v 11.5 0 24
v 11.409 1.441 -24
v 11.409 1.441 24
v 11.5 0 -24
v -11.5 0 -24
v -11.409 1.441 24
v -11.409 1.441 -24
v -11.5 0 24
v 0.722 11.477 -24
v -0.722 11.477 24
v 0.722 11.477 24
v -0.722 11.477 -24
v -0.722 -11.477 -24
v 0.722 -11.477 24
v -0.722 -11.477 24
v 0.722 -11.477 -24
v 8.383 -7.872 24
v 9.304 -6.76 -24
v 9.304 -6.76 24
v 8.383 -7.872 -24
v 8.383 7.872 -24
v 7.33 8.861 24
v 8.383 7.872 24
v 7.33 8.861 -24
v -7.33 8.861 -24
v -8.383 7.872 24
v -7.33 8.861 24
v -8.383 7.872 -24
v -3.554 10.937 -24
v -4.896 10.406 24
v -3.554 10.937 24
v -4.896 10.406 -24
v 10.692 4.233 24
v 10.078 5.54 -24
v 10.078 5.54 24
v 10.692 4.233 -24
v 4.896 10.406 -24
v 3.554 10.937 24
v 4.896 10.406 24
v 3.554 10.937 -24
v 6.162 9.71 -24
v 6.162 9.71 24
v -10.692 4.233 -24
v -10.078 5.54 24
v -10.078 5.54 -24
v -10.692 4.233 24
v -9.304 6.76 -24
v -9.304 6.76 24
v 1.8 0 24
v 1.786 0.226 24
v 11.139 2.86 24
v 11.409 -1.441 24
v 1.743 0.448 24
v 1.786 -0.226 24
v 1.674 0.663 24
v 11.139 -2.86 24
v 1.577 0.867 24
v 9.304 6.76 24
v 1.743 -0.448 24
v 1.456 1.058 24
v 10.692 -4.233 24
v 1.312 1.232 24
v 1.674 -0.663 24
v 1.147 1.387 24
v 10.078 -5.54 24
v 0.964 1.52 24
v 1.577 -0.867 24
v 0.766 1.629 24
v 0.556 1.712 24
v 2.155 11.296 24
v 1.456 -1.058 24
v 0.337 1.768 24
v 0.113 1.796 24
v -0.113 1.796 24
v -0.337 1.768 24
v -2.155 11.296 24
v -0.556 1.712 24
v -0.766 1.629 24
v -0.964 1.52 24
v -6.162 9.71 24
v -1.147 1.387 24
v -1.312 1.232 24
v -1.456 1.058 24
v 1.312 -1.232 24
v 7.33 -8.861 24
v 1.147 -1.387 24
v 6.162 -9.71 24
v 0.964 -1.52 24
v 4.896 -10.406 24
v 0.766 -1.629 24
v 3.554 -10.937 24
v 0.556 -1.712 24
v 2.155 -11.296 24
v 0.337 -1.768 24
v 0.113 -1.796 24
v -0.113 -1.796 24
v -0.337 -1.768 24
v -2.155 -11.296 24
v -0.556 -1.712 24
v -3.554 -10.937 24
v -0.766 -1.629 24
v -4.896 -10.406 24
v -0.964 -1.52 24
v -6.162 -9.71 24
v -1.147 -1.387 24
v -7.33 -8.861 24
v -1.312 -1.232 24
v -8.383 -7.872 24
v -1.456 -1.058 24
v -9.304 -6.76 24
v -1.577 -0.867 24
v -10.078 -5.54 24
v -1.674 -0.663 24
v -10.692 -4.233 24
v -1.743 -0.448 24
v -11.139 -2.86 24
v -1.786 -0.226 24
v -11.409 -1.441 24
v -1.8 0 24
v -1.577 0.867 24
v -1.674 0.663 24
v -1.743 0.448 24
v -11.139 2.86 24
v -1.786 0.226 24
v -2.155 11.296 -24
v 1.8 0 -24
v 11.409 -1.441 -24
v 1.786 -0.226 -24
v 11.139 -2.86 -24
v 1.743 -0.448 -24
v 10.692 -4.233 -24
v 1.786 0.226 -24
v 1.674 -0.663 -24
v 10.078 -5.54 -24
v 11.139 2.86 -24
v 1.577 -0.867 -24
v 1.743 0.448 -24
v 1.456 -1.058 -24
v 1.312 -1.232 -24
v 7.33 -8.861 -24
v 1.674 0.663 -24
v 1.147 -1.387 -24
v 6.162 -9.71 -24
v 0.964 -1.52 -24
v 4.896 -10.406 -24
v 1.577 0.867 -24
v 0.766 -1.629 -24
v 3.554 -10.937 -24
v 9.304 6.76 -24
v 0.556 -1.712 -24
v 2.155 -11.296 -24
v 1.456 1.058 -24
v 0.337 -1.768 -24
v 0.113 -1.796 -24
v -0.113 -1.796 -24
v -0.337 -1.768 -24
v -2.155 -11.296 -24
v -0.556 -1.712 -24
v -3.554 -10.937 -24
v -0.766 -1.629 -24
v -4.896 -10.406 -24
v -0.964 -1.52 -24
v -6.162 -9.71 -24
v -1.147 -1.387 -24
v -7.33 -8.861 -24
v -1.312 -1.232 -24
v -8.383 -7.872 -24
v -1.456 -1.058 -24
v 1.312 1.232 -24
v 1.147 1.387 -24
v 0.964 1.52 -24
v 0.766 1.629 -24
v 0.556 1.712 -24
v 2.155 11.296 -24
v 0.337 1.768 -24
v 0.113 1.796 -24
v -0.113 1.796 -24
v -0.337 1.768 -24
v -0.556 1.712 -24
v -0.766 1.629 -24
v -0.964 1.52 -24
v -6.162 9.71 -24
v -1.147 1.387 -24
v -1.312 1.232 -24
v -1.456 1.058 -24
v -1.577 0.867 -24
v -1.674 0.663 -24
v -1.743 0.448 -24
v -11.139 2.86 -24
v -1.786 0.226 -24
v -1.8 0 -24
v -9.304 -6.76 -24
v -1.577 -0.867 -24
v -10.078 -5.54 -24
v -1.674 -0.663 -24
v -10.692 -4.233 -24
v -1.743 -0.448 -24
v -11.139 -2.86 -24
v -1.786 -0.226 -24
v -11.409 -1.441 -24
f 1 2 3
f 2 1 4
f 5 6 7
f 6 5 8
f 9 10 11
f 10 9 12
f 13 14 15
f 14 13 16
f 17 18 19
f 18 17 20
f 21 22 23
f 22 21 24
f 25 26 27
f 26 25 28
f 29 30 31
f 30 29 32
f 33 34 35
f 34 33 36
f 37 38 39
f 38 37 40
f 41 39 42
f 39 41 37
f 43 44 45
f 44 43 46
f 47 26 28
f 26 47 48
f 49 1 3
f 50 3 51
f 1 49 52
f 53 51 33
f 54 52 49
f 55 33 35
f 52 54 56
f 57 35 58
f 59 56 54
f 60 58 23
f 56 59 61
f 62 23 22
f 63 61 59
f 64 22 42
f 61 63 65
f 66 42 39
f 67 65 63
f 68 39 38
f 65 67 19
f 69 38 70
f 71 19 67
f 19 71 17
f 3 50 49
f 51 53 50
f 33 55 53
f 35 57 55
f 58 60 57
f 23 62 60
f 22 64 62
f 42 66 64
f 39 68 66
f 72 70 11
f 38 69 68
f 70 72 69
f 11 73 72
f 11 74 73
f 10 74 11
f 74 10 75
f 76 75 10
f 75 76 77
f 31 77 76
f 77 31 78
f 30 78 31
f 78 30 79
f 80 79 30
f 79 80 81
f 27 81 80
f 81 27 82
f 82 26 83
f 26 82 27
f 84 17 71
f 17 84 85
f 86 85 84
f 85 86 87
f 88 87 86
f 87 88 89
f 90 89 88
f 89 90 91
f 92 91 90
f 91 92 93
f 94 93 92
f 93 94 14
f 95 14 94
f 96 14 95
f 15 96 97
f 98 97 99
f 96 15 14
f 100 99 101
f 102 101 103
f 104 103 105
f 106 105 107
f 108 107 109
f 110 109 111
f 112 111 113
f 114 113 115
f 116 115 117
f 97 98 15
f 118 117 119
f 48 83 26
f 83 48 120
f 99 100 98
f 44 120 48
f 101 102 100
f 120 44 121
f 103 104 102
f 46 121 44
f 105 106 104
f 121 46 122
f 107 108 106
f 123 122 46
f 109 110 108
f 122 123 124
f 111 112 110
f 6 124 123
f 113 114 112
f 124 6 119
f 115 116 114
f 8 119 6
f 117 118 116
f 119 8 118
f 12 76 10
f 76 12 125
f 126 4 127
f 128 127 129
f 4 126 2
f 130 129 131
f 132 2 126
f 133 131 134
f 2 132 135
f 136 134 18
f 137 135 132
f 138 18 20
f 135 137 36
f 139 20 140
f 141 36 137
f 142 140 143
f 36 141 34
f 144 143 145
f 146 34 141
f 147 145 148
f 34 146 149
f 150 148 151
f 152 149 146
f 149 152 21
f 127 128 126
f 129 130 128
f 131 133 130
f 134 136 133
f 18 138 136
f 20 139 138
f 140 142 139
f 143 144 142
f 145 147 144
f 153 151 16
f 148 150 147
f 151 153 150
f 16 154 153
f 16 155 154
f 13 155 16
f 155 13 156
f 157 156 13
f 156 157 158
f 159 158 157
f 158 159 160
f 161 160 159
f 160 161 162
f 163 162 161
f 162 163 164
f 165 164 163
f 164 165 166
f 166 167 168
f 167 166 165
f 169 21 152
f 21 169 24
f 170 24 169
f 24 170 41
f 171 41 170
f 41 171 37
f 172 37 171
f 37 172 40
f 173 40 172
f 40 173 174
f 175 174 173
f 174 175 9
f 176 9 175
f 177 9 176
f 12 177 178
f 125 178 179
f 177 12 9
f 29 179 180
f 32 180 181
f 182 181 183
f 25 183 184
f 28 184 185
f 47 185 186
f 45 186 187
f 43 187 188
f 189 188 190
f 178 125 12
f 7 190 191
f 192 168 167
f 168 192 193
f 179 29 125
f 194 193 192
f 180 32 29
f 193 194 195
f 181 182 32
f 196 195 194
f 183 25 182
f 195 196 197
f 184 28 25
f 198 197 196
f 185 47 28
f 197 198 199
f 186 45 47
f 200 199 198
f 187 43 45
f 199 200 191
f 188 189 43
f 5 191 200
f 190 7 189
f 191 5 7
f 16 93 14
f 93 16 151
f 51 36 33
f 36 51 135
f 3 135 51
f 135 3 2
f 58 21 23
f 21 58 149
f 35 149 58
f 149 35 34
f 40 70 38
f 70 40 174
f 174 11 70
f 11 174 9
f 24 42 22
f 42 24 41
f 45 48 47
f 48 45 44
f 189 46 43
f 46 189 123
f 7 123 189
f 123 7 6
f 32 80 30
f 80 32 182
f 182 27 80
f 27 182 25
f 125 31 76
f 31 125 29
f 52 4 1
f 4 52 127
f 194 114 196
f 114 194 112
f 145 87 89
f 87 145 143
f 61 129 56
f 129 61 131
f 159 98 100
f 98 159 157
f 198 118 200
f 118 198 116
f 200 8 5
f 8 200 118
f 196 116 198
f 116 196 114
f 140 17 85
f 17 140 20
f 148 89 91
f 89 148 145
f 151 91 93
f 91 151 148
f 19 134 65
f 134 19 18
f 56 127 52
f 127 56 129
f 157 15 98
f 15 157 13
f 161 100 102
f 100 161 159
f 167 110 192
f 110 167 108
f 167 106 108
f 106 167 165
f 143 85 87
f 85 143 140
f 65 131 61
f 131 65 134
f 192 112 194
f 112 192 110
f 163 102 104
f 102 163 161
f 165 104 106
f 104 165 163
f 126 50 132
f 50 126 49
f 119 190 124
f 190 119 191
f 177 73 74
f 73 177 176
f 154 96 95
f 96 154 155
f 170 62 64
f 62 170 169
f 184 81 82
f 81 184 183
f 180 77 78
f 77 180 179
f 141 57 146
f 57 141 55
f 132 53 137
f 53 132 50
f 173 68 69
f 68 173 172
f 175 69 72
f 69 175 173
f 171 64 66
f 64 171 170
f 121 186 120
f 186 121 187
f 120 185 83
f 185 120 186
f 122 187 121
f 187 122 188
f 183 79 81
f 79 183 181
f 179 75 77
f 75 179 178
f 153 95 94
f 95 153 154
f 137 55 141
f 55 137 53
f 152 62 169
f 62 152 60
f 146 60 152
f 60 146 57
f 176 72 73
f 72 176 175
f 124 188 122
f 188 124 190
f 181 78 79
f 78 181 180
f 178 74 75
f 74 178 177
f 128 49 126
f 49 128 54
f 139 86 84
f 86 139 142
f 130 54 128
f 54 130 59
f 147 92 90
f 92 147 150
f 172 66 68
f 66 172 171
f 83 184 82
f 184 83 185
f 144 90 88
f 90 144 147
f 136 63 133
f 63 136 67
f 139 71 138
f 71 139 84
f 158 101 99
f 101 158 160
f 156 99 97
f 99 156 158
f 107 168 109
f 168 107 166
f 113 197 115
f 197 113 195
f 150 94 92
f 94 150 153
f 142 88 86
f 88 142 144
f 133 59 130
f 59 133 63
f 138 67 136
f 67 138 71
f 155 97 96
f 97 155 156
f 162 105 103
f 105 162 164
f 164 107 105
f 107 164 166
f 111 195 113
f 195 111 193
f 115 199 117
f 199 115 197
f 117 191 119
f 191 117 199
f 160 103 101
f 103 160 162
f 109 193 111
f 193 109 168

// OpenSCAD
$fn = 50;


difference() {
	union() {
		translate(v = [0, 0, -24.0000000000]) {
			cylinder(h = 48, r = 11.5000000000);
		}
	}
	union() {
		translate(v = [0, 0, -100.0000000000]) {
			cylinder(h = 200, r = 1.8000000000);
		}
	}
}
